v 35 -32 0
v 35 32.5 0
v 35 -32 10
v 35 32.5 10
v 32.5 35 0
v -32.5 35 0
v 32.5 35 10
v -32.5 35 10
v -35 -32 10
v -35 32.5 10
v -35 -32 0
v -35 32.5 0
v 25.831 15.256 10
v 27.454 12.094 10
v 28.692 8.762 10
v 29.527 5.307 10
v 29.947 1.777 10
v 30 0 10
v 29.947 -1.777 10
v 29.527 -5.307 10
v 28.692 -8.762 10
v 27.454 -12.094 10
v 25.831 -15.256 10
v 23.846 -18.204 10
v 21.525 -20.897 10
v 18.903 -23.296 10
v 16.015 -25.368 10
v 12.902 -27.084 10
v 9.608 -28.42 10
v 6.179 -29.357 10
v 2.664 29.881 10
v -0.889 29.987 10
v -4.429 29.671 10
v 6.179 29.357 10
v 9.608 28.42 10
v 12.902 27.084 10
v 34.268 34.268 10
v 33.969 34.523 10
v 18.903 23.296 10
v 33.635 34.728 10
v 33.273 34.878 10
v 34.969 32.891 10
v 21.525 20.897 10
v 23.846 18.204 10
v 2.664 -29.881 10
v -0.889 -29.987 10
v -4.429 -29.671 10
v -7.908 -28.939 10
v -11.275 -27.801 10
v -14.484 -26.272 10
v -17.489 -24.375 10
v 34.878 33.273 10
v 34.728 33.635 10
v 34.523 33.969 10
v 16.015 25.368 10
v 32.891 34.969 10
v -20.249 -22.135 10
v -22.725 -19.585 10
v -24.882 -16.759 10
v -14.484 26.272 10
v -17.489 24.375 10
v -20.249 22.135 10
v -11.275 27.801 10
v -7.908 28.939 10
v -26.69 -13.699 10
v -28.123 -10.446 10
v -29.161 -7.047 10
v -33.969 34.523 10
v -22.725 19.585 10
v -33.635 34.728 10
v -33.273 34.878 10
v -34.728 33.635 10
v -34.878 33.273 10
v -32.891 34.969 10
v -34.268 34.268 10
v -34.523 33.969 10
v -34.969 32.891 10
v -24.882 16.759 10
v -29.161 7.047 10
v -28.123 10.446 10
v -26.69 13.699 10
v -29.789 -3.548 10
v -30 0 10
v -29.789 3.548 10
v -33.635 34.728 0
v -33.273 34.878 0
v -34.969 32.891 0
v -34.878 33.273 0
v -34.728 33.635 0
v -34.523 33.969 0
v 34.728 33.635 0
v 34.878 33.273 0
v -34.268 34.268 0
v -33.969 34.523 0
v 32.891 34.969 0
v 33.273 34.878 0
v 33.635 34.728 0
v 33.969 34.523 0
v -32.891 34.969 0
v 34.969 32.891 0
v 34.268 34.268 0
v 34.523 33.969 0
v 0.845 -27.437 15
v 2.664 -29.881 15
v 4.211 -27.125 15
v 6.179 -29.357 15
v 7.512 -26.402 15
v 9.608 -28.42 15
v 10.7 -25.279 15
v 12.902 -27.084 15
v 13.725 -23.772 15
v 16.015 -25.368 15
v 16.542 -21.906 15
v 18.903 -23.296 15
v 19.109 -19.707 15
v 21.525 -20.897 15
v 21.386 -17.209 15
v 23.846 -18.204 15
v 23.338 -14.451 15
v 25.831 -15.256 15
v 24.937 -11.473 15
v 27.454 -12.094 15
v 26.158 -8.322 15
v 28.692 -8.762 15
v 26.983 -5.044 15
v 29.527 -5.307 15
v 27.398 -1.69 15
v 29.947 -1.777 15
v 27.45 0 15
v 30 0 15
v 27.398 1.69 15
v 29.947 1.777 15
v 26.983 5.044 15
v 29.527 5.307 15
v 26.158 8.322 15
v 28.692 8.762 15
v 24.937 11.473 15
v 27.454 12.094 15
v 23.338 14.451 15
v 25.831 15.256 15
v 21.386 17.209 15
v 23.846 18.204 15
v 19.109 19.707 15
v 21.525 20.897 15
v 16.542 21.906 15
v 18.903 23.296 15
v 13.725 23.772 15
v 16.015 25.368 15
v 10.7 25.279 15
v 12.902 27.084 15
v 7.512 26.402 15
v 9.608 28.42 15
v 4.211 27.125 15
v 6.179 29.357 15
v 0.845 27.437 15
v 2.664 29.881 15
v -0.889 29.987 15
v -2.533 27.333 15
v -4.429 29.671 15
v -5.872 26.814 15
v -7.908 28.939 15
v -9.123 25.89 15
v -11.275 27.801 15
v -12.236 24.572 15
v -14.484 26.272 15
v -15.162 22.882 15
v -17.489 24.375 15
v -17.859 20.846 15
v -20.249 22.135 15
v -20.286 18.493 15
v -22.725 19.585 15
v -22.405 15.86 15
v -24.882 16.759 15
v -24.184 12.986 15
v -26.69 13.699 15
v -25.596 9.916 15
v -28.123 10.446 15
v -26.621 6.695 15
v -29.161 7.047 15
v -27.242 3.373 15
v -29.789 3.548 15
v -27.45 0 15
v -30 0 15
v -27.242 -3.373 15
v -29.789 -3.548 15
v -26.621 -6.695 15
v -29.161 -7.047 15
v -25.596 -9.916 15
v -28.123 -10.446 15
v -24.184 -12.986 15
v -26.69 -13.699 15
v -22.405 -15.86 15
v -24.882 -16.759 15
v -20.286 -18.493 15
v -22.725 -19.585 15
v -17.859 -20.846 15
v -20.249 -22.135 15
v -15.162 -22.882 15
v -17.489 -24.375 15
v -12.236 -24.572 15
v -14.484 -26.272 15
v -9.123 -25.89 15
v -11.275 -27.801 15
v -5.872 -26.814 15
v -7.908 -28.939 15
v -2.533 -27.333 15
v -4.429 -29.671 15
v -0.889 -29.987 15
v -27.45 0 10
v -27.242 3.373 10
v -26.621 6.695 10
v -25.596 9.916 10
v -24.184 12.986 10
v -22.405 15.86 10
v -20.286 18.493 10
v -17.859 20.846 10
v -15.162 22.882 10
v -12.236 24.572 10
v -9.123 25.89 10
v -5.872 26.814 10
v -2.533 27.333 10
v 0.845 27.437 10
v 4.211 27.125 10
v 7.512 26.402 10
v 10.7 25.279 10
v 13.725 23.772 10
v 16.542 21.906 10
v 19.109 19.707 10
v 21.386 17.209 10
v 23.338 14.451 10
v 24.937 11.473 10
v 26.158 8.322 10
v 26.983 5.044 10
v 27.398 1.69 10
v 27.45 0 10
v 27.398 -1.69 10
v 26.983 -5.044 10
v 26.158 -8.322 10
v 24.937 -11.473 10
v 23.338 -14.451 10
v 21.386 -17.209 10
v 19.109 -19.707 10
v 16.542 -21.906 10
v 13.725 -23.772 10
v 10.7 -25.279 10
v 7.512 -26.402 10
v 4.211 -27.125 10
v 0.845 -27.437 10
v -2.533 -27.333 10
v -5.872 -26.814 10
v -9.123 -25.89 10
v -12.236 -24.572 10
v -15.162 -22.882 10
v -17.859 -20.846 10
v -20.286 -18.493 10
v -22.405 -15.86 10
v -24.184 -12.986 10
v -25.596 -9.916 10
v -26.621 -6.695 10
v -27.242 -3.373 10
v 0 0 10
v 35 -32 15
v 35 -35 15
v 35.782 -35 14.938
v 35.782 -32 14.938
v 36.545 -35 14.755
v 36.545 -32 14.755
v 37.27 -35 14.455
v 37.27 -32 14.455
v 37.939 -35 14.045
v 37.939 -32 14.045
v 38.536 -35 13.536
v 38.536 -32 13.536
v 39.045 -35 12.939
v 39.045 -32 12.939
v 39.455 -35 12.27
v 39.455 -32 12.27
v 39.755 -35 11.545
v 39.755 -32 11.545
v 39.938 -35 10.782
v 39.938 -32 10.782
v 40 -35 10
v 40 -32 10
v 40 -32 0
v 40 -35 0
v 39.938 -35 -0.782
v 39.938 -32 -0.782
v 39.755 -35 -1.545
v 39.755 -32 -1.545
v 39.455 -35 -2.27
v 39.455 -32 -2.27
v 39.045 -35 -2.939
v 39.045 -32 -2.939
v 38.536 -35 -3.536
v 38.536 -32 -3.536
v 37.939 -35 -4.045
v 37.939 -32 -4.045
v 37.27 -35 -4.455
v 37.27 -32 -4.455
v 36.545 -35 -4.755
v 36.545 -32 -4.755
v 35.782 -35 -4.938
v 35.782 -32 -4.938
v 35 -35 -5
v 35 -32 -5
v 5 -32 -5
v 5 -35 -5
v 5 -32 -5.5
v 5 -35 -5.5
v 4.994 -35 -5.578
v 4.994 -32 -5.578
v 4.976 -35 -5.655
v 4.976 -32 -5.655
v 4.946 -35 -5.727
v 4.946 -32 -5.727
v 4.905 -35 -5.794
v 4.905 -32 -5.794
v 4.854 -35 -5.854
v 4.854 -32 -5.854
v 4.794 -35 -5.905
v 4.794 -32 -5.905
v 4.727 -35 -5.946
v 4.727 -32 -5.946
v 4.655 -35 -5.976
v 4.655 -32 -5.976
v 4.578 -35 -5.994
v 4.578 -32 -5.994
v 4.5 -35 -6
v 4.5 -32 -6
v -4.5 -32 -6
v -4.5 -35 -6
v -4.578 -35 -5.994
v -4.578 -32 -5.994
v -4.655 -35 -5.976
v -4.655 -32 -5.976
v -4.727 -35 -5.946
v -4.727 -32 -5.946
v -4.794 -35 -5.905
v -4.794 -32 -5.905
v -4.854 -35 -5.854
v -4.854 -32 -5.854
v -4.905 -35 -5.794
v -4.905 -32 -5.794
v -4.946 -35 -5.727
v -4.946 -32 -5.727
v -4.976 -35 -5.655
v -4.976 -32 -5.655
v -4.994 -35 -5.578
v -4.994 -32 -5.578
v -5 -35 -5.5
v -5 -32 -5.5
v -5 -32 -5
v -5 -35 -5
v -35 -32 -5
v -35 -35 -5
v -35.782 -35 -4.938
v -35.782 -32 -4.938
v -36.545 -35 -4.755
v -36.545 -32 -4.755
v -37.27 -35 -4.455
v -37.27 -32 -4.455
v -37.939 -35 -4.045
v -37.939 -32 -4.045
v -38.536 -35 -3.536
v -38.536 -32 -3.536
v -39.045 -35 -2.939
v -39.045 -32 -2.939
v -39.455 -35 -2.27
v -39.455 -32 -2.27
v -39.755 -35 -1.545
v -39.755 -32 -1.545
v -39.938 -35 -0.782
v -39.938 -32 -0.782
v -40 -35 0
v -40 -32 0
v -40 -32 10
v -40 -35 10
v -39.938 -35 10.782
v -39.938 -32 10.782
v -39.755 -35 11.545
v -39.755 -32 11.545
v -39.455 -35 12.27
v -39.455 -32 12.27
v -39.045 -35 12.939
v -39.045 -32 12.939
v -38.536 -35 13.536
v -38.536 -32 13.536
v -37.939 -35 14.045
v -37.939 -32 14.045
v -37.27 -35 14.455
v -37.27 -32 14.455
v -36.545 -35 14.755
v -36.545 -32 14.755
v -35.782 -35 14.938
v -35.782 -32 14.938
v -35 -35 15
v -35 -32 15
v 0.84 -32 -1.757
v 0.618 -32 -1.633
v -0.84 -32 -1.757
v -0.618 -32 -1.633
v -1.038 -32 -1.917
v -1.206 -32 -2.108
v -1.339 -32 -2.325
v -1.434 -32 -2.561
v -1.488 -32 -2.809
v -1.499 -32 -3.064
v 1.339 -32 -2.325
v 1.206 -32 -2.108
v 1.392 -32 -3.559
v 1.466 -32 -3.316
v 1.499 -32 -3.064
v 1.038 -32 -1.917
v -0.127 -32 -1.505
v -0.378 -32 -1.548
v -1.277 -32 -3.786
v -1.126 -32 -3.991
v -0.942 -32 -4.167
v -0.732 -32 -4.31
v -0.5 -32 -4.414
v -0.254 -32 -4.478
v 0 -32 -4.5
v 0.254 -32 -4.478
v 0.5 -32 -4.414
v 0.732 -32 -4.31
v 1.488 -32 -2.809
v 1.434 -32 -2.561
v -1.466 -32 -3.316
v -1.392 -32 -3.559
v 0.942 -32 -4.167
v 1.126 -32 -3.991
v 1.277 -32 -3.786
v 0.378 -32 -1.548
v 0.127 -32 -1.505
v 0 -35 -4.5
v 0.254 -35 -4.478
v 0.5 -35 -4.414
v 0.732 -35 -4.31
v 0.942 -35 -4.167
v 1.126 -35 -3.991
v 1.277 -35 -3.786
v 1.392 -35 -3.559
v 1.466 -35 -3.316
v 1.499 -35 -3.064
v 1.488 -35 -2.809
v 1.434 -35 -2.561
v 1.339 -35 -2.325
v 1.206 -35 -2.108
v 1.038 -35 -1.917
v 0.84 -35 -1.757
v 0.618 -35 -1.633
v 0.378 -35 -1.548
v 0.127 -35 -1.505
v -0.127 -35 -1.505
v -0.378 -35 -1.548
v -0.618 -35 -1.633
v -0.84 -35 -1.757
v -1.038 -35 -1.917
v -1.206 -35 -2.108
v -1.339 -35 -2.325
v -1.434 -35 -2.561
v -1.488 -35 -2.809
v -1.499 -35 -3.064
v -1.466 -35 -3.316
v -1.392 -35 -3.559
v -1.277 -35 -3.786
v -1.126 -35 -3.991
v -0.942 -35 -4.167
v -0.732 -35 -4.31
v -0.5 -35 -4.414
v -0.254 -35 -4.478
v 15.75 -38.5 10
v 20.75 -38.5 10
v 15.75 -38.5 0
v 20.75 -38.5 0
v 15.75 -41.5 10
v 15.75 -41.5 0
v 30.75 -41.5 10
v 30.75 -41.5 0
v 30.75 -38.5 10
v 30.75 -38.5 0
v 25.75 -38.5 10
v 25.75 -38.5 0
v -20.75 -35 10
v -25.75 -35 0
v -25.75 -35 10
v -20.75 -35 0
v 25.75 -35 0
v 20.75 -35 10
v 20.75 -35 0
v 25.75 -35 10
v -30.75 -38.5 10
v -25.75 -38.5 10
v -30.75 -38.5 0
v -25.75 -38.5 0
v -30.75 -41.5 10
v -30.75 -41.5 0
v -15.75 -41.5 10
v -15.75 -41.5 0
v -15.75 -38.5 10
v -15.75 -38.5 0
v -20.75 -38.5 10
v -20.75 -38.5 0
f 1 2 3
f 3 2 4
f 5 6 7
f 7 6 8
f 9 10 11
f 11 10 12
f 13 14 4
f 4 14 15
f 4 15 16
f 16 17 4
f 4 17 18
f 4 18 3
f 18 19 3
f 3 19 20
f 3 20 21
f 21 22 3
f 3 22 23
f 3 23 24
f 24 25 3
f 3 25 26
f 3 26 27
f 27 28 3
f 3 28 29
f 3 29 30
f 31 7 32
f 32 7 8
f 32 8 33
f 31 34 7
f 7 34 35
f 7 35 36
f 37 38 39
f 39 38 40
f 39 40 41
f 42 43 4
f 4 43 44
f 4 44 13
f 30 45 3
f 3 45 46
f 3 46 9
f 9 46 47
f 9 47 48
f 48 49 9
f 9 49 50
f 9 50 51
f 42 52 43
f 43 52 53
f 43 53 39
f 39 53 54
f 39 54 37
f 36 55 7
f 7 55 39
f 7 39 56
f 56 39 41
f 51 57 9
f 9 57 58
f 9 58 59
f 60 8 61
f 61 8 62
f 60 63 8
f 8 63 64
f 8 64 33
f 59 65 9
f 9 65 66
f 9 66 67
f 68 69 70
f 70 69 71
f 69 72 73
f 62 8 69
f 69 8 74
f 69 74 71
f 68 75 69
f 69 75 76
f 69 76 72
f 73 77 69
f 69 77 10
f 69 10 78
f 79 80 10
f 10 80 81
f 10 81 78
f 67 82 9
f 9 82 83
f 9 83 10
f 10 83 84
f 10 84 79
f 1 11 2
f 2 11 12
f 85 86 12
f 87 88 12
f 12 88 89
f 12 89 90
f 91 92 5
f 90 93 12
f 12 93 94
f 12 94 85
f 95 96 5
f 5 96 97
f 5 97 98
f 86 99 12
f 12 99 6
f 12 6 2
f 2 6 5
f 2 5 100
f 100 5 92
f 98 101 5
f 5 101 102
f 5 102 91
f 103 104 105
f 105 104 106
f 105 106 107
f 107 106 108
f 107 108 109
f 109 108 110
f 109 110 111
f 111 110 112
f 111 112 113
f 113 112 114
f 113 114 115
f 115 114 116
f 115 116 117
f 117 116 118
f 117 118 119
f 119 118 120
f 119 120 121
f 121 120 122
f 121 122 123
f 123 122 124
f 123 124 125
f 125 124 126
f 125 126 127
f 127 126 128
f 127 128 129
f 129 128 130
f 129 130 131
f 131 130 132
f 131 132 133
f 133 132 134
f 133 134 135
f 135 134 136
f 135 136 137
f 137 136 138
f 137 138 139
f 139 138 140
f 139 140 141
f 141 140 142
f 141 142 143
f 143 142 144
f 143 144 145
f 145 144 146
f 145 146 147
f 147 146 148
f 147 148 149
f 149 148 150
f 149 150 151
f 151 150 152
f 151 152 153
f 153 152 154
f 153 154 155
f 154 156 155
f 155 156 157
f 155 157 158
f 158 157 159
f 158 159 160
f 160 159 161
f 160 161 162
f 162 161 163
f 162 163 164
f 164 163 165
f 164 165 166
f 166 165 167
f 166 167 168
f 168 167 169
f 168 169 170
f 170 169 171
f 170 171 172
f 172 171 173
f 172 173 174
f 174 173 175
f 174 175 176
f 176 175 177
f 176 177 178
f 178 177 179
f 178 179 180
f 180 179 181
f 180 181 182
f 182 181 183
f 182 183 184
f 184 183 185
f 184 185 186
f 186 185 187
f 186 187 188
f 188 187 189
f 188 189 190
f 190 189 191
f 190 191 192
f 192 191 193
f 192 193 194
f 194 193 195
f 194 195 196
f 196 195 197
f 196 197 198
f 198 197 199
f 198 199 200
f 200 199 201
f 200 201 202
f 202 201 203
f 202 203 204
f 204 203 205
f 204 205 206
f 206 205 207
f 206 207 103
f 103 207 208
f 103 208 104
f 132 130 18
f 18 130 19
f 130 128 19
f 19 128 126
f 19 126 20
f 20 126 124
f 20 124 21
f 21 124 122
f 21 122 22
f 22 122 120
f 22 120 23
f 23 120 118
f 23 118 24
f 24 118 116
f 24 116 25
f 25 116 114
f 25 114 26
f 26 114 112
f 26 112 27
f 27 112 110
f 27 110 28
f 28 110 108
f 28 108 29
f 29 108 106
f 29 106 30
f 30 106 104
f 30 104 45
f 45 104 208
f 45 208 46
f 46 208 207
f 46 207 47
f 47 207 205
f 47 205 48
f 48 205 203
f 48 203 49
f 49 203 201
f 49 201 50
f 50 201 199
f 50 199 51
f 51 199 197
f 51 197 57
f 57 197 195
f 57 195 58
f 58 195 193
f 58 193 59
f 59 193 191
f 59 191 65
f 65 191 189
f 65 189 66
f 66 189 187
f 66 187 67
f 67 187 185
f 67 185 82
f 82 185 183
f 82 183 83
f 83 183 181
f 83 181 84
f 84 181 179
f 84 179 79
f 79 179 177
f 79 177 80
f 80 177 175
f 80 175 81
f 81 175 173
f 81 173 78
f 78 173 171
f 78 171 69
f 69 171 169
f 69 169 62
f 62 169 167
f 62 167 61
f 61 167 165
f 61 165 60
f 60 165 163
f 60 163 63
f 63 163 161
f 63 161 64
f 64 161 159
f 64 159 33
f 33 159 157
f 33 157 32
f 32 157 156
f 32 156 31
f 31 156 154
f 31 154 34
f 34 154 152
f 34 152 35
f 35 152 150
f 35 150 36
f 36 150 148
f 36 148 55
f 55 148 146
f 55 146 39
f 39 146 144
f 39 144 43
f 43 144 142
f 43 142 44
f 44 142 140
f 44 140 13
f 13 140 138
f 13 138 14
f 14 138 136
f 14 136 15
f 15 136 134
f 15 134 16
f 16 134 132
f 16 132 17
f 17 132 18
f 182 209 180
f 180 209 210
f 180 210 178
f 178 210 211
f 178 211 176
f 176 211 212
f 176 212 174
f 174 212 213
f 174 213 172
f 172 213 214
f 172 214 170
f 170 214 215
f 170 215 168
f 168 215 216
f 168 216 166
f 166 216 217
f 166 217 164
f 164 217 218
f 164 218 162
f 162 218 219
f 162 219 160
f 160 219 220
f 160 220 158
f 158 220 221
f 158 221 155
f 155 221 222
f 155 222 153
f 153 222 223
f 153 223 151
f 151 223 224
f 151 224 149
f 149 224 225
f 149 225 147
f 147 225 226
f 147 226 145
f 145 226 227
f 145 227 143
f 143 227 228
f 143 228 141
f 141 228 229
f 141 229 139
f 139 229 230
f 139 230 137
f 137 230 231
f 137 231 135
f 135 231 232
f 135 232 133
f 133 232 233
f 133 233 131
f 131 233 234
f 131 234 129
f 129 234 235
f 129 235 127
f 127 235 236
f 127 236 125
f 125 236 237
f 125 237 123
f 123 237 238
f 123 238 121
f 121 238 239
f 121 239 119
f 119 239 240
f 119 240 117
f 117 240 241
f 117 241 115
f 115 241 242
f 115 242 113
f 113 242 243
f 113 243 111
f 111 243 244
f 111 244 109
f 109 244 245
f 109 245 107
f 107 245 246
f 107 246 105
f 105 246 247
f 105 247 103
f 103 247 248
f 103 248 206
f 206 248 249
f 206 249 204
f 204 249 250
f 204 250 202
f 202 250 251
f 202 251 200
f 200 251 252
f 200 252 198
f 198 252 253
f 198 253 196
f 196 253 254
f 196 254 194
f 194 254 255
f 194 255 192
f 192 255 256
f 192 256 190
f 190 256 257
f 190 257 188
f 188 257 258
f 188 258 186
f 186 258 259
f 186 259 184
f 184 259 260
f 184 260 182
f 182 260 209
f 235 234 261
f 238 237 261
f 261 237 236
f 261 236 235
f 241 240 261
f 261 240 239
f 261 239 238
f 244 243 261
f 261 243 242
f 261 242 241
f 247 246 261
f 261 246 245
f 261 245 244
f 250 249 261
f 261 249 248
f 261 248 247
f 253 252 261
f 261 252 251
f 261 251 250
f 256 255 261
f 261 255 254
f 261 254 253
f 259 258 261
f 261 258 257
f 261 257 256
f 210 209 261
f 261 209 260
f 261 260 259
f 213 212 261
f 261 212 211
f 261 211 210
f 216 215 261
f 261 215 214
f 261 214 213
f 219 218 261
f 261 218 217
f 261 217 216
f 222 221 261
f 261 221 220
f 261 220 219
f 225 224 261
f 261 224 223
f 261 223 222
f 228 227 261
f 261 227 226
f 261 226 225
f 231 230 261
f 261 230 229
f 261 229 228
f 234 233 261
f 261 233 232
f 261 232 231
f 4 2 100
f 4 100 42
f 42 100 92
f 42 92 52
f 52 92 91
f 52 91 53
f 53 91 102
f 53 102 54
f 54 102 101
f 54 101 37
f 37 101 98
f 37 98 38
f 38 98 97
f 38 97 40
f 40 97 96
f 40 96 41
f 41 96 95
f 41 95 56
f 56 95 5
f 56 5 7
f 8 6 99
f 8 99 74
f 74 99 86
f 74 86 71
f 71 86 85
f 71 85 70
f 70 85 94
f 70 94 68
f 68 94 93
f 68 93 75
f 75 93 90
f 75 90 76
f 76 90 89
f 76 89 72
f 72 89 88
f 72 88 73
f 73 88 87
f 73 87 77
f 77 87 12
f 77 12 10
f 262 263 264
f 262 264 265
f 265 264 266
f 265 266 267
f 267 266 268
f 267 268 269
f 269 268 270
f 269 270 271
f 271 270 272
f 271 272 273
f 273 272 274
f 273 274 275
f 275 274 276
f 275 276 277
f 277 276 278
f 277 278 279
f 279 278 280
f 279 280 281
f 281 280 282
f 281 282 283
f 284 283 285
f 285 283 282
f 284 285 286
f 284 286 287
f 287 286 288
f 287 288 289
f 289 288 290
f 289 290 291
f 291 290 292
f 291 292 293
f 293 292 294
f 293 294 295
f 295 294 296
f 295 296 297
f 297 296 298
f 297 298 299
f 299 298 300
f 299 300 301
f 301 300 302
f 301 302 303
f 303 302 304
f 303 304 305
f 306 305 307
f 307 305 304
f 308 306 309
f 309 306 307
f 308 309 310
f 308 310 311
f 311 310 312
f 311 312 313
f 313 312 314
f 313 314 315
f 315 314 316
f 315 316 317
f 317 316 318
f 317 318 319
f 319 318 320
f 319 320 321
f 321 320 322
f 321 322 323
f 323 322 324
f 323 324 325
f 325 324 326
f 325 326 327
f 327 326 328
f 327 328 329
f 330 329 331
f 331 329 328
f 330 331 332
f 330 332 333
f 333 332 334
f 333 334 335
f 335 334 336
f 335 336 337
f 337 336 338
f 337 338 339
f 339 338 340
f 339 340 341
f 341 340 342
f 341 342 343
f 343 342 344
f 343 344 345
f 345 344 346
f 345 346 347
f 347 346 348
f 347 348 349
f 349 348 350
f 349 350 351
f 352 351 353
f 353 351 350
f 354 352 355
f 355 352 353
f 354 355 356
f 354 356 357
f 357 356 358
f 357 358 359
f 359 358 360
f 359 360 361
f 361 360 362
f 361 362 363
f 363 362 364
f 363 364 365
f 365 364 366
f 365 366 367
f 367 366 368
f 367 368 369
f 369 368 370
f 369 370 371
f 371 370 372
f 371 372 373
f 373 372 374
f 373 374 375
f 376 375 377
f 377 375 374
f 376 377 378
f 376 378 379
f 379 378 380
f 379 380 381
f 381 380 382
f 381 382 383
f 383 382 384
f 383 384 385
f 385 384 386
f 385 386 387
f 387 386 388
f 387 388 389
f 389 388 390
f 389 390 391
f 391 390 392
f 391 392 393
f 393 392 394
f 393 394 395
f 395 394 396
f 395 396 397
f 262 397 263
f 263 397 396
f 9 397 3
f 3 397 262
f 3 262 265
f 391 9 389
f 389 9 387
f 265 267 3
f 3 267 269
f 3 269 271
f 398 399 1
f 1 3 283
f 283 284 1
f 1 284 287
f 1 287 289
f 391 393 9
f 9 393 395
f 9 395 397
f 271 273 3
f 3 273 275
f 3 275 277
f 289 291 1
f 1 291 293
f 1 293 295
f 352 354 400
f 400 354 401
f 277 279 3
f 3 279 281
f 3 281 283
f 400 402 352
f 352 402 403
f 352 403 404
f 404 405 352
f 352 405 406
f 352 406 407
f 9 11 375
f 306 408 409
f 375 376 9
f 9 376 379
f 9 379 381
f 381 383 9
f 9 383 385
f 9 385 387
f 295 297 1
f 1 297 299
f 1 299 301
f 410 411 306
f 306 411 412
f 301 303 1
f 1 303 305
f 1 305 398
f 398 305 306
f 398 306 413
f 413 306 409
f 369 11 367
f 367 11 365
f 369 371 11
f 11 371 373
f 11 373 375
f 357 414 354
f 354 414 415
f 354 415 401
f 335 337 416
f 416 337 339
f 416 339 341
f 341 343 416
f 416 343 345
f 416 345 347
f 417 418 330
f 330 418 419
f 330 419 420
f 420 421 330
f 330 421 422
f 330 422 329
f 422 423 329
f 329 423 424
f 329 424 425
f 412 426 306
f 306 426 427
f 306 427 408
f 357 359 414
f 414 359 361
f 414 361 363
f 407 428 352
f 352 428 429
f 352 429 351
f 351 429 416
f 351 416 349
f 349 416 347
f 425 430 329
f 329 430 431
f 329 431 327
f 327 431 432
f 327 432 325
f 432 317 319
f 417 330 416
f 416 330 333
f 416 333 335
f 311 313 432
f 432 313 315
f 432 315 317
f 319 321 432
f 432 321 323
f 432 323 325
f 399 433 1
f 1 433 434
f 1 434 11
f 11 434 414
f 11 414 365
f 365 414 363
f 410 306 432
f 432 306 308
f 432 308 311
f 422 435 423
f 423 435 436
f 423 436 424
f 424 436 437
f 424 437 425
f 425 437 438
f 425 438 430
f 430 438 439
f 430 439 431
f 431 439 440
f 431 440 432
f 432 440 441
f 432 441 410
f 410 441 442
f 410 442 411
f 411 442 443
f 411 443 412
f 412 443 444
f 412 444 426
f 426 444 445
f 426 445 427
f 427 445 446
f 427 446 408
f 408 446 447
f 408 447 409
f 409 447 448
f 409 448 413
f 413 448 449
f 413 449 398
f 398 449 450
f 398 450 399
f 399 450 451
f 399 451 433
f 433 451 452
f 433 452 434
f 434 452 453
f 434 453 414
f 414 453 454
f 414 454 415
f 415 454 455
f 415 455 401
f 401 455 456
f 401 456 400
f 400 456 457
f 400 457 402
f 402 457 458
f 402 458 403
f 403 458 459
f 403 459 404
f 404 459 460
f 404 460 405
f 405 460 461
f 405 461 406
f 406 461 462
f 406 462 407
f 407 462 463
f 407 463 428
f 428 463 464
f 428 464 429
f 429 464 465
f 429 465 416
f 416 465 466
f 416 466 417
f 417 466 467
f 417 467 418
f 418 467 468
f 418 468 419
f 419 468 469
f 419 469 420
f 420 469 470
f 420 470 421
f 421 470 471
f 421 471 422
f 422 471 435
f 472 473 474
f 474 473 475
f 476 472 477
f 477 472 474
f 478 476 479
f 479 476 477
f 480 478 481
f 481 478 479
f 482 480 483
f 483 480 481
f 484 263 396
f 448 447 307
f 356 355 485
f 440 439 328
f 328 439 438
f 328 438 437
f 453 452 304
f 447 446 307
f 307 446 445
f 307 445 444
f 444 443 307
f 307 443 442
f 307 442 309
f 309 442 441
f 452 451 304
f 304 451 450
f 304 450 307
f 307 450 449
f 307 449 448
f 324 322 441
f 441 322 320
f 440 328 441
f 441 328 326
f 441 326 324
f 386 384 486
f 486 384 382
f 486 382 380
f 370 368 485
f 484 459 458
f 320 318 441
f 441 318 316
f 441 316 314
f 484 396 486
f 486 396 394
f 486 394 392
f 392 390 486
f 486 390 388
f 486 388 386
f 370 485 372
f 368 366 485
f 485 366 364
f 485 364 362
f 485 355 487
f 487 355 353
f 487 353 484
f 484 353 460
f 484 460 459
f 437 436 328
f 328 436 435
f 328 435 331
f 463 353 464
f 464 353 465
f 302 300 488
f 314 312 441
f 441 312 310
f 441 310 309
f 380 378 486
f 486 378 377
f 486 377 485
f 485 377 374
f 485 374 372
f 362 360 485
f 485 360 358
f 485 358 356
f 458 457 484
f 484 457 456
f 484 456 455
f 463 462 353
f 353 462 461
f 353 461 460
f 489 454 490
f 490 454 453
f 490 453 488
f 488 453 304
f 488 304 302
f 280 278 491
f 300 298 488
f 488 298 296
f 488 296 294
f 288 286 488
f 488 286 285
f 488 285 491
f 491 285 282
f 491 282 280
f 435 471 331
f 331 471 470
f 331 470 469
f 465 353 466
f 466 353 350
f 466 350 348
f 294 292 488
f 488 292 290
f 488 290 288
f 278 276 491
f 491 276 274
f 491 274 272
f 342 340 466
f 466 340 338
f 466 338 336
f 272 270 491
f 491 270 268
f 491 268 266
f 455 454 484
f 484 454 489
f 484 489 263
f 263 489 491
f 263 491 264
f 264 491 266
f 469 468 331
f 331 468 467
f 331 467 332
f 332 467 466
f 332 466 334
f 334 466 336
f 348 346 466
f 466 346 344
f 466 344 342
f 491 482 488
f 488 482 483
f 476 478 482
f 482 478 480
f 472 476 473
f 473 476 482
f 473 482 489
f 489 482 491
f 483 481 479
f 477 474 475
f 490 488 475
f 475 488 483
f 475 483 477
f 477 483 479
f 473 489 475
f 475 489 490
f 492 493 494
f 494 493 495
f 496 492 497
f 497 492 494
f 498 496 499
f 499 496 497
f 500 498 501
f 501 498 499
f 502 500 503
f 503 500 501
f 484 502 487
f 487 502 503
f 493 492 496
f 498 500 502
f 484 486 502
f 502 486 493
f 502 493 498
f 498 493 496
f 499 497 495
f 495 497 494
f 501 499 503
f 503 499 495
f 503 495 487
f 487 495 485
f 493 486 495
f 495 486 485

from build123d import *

# Parameters (mm, degrees)
SKETCH1_W           = 70
SKETCH1_H           = 70
BOSS_EXTRUDE1_DEPTH = 10
SKETCH2_R           = 30
SKETCH2_R_2         = 27.45
BOSS_EXTRUDE2_DEPTH = 5
FILLET1_R           = 2.5
BOSS_EXTRUDE3_DEPTH = 10
SKETCH5_R           = 1.5
SKETCH5_W           = 70
SKETCH5_H           = 10
BOSS_EXTRUDE5_DEPTH = 3


with BuildPart() as part:
    # Sketch1 → Boss-Extrude1 (new body)
    with BuildSketch(Plane.XY):
        Rectangle(SKETCH1_W, SKETCH1_H)
    extrude(amount=BOSS_EXTRUDE1_DEPTH)

    # Sketch2 → Boss-Extrude2 (add)
    with BuildSketch(Plane.XY.offset(10)):
        Circle(SKETCH2_R)
        Circle(SKETCH2_R_2, mode=Mode.SUBTRACT)
    extrude(amount=BOSS_EXTRUDE2_DEPTH)

    # Fillet1
    fillet1_edges = [part.edges().sort_by_distance(p)[0] for p in [
        (-35, 35, 5),
        (35, 35, 5),
    ]]
    fillet(fillet1_edges, radius=FILLET1_R)

    # Sketch3 → Boss-Extrude3 (add)
    with BuildSketch(Plane(origin=(0, 0, 0), x_dir=(-1, 0, 0), z_dir=(0, 0, -1))):
        Polygon((-20.75, -38.5), (-15.75, -38.5), (-15.75, -41.5), (-30.75, -41.5), (-30.75, -38.5), (-25.75, -38.5), (-25.75, -35), (-20.75, -35), align=None)
        Polygon((30.75, -38.5), (30.75, -41.5), (15.75, -41.5), (15.75, -38.5), (20.75, -38.5), (20.75, -35), (25.75, -35), (25.75, -38.5), align=None)
    extrude(amount=-BOSS_EXTRUDE3_DEPTH)

    # Sketch5 → Boss-Extrude5 (add)
    with BuildSketch(Plane.XZ.offset(35)):
        with BuildLine():
            Line((5, -5), (35, -5))
            ThreePointArc((35, -5), (38.535533906, -3.535533906), (40, 0))
            Line((40, 0), (40, 10))
            ThreePointArc((40, 10), (38.535533906, 13.535533906), (35, 15))
            Line((35, 15), (-35, 15))
            ThreePointArc((-35, 15), (-38.535533906, 13.535533906), (-40, 10))
            Line((-40, 10), (-40, 0))
            ThreePointArc((-40, 0), (-38.535533906, -3.535533906), (-35, -5))
            Line((-35, -5), (-5, -5))
            Line((-5, -5), (-5, -5.5))
            ThreePointArc((-5, -5.5), (-4.853553391, -5.853553391), (-4.5, -6))
            Line((-4.5, -6), (4.5, -6))
            ThreePointArc((4.5, -6), (4.853553391, -5.853553391), (5, -5.5))
            Line((5, -5.5), (5, -5))
        make_face()
        with Locations(Location((0, -3, 0), (0, 0, 270))):
            Circle(SKETCH5_R, mode=Mode.SUBTRACT)
        with Locations((0, 5)):
            Rectangle(SKETCH5_W, SKETCH5_H, mode=Mode.SUBTRACT)
    extrude(amount=-BOSS_EXTRUDE5_DEPTH)


solid = part.part
